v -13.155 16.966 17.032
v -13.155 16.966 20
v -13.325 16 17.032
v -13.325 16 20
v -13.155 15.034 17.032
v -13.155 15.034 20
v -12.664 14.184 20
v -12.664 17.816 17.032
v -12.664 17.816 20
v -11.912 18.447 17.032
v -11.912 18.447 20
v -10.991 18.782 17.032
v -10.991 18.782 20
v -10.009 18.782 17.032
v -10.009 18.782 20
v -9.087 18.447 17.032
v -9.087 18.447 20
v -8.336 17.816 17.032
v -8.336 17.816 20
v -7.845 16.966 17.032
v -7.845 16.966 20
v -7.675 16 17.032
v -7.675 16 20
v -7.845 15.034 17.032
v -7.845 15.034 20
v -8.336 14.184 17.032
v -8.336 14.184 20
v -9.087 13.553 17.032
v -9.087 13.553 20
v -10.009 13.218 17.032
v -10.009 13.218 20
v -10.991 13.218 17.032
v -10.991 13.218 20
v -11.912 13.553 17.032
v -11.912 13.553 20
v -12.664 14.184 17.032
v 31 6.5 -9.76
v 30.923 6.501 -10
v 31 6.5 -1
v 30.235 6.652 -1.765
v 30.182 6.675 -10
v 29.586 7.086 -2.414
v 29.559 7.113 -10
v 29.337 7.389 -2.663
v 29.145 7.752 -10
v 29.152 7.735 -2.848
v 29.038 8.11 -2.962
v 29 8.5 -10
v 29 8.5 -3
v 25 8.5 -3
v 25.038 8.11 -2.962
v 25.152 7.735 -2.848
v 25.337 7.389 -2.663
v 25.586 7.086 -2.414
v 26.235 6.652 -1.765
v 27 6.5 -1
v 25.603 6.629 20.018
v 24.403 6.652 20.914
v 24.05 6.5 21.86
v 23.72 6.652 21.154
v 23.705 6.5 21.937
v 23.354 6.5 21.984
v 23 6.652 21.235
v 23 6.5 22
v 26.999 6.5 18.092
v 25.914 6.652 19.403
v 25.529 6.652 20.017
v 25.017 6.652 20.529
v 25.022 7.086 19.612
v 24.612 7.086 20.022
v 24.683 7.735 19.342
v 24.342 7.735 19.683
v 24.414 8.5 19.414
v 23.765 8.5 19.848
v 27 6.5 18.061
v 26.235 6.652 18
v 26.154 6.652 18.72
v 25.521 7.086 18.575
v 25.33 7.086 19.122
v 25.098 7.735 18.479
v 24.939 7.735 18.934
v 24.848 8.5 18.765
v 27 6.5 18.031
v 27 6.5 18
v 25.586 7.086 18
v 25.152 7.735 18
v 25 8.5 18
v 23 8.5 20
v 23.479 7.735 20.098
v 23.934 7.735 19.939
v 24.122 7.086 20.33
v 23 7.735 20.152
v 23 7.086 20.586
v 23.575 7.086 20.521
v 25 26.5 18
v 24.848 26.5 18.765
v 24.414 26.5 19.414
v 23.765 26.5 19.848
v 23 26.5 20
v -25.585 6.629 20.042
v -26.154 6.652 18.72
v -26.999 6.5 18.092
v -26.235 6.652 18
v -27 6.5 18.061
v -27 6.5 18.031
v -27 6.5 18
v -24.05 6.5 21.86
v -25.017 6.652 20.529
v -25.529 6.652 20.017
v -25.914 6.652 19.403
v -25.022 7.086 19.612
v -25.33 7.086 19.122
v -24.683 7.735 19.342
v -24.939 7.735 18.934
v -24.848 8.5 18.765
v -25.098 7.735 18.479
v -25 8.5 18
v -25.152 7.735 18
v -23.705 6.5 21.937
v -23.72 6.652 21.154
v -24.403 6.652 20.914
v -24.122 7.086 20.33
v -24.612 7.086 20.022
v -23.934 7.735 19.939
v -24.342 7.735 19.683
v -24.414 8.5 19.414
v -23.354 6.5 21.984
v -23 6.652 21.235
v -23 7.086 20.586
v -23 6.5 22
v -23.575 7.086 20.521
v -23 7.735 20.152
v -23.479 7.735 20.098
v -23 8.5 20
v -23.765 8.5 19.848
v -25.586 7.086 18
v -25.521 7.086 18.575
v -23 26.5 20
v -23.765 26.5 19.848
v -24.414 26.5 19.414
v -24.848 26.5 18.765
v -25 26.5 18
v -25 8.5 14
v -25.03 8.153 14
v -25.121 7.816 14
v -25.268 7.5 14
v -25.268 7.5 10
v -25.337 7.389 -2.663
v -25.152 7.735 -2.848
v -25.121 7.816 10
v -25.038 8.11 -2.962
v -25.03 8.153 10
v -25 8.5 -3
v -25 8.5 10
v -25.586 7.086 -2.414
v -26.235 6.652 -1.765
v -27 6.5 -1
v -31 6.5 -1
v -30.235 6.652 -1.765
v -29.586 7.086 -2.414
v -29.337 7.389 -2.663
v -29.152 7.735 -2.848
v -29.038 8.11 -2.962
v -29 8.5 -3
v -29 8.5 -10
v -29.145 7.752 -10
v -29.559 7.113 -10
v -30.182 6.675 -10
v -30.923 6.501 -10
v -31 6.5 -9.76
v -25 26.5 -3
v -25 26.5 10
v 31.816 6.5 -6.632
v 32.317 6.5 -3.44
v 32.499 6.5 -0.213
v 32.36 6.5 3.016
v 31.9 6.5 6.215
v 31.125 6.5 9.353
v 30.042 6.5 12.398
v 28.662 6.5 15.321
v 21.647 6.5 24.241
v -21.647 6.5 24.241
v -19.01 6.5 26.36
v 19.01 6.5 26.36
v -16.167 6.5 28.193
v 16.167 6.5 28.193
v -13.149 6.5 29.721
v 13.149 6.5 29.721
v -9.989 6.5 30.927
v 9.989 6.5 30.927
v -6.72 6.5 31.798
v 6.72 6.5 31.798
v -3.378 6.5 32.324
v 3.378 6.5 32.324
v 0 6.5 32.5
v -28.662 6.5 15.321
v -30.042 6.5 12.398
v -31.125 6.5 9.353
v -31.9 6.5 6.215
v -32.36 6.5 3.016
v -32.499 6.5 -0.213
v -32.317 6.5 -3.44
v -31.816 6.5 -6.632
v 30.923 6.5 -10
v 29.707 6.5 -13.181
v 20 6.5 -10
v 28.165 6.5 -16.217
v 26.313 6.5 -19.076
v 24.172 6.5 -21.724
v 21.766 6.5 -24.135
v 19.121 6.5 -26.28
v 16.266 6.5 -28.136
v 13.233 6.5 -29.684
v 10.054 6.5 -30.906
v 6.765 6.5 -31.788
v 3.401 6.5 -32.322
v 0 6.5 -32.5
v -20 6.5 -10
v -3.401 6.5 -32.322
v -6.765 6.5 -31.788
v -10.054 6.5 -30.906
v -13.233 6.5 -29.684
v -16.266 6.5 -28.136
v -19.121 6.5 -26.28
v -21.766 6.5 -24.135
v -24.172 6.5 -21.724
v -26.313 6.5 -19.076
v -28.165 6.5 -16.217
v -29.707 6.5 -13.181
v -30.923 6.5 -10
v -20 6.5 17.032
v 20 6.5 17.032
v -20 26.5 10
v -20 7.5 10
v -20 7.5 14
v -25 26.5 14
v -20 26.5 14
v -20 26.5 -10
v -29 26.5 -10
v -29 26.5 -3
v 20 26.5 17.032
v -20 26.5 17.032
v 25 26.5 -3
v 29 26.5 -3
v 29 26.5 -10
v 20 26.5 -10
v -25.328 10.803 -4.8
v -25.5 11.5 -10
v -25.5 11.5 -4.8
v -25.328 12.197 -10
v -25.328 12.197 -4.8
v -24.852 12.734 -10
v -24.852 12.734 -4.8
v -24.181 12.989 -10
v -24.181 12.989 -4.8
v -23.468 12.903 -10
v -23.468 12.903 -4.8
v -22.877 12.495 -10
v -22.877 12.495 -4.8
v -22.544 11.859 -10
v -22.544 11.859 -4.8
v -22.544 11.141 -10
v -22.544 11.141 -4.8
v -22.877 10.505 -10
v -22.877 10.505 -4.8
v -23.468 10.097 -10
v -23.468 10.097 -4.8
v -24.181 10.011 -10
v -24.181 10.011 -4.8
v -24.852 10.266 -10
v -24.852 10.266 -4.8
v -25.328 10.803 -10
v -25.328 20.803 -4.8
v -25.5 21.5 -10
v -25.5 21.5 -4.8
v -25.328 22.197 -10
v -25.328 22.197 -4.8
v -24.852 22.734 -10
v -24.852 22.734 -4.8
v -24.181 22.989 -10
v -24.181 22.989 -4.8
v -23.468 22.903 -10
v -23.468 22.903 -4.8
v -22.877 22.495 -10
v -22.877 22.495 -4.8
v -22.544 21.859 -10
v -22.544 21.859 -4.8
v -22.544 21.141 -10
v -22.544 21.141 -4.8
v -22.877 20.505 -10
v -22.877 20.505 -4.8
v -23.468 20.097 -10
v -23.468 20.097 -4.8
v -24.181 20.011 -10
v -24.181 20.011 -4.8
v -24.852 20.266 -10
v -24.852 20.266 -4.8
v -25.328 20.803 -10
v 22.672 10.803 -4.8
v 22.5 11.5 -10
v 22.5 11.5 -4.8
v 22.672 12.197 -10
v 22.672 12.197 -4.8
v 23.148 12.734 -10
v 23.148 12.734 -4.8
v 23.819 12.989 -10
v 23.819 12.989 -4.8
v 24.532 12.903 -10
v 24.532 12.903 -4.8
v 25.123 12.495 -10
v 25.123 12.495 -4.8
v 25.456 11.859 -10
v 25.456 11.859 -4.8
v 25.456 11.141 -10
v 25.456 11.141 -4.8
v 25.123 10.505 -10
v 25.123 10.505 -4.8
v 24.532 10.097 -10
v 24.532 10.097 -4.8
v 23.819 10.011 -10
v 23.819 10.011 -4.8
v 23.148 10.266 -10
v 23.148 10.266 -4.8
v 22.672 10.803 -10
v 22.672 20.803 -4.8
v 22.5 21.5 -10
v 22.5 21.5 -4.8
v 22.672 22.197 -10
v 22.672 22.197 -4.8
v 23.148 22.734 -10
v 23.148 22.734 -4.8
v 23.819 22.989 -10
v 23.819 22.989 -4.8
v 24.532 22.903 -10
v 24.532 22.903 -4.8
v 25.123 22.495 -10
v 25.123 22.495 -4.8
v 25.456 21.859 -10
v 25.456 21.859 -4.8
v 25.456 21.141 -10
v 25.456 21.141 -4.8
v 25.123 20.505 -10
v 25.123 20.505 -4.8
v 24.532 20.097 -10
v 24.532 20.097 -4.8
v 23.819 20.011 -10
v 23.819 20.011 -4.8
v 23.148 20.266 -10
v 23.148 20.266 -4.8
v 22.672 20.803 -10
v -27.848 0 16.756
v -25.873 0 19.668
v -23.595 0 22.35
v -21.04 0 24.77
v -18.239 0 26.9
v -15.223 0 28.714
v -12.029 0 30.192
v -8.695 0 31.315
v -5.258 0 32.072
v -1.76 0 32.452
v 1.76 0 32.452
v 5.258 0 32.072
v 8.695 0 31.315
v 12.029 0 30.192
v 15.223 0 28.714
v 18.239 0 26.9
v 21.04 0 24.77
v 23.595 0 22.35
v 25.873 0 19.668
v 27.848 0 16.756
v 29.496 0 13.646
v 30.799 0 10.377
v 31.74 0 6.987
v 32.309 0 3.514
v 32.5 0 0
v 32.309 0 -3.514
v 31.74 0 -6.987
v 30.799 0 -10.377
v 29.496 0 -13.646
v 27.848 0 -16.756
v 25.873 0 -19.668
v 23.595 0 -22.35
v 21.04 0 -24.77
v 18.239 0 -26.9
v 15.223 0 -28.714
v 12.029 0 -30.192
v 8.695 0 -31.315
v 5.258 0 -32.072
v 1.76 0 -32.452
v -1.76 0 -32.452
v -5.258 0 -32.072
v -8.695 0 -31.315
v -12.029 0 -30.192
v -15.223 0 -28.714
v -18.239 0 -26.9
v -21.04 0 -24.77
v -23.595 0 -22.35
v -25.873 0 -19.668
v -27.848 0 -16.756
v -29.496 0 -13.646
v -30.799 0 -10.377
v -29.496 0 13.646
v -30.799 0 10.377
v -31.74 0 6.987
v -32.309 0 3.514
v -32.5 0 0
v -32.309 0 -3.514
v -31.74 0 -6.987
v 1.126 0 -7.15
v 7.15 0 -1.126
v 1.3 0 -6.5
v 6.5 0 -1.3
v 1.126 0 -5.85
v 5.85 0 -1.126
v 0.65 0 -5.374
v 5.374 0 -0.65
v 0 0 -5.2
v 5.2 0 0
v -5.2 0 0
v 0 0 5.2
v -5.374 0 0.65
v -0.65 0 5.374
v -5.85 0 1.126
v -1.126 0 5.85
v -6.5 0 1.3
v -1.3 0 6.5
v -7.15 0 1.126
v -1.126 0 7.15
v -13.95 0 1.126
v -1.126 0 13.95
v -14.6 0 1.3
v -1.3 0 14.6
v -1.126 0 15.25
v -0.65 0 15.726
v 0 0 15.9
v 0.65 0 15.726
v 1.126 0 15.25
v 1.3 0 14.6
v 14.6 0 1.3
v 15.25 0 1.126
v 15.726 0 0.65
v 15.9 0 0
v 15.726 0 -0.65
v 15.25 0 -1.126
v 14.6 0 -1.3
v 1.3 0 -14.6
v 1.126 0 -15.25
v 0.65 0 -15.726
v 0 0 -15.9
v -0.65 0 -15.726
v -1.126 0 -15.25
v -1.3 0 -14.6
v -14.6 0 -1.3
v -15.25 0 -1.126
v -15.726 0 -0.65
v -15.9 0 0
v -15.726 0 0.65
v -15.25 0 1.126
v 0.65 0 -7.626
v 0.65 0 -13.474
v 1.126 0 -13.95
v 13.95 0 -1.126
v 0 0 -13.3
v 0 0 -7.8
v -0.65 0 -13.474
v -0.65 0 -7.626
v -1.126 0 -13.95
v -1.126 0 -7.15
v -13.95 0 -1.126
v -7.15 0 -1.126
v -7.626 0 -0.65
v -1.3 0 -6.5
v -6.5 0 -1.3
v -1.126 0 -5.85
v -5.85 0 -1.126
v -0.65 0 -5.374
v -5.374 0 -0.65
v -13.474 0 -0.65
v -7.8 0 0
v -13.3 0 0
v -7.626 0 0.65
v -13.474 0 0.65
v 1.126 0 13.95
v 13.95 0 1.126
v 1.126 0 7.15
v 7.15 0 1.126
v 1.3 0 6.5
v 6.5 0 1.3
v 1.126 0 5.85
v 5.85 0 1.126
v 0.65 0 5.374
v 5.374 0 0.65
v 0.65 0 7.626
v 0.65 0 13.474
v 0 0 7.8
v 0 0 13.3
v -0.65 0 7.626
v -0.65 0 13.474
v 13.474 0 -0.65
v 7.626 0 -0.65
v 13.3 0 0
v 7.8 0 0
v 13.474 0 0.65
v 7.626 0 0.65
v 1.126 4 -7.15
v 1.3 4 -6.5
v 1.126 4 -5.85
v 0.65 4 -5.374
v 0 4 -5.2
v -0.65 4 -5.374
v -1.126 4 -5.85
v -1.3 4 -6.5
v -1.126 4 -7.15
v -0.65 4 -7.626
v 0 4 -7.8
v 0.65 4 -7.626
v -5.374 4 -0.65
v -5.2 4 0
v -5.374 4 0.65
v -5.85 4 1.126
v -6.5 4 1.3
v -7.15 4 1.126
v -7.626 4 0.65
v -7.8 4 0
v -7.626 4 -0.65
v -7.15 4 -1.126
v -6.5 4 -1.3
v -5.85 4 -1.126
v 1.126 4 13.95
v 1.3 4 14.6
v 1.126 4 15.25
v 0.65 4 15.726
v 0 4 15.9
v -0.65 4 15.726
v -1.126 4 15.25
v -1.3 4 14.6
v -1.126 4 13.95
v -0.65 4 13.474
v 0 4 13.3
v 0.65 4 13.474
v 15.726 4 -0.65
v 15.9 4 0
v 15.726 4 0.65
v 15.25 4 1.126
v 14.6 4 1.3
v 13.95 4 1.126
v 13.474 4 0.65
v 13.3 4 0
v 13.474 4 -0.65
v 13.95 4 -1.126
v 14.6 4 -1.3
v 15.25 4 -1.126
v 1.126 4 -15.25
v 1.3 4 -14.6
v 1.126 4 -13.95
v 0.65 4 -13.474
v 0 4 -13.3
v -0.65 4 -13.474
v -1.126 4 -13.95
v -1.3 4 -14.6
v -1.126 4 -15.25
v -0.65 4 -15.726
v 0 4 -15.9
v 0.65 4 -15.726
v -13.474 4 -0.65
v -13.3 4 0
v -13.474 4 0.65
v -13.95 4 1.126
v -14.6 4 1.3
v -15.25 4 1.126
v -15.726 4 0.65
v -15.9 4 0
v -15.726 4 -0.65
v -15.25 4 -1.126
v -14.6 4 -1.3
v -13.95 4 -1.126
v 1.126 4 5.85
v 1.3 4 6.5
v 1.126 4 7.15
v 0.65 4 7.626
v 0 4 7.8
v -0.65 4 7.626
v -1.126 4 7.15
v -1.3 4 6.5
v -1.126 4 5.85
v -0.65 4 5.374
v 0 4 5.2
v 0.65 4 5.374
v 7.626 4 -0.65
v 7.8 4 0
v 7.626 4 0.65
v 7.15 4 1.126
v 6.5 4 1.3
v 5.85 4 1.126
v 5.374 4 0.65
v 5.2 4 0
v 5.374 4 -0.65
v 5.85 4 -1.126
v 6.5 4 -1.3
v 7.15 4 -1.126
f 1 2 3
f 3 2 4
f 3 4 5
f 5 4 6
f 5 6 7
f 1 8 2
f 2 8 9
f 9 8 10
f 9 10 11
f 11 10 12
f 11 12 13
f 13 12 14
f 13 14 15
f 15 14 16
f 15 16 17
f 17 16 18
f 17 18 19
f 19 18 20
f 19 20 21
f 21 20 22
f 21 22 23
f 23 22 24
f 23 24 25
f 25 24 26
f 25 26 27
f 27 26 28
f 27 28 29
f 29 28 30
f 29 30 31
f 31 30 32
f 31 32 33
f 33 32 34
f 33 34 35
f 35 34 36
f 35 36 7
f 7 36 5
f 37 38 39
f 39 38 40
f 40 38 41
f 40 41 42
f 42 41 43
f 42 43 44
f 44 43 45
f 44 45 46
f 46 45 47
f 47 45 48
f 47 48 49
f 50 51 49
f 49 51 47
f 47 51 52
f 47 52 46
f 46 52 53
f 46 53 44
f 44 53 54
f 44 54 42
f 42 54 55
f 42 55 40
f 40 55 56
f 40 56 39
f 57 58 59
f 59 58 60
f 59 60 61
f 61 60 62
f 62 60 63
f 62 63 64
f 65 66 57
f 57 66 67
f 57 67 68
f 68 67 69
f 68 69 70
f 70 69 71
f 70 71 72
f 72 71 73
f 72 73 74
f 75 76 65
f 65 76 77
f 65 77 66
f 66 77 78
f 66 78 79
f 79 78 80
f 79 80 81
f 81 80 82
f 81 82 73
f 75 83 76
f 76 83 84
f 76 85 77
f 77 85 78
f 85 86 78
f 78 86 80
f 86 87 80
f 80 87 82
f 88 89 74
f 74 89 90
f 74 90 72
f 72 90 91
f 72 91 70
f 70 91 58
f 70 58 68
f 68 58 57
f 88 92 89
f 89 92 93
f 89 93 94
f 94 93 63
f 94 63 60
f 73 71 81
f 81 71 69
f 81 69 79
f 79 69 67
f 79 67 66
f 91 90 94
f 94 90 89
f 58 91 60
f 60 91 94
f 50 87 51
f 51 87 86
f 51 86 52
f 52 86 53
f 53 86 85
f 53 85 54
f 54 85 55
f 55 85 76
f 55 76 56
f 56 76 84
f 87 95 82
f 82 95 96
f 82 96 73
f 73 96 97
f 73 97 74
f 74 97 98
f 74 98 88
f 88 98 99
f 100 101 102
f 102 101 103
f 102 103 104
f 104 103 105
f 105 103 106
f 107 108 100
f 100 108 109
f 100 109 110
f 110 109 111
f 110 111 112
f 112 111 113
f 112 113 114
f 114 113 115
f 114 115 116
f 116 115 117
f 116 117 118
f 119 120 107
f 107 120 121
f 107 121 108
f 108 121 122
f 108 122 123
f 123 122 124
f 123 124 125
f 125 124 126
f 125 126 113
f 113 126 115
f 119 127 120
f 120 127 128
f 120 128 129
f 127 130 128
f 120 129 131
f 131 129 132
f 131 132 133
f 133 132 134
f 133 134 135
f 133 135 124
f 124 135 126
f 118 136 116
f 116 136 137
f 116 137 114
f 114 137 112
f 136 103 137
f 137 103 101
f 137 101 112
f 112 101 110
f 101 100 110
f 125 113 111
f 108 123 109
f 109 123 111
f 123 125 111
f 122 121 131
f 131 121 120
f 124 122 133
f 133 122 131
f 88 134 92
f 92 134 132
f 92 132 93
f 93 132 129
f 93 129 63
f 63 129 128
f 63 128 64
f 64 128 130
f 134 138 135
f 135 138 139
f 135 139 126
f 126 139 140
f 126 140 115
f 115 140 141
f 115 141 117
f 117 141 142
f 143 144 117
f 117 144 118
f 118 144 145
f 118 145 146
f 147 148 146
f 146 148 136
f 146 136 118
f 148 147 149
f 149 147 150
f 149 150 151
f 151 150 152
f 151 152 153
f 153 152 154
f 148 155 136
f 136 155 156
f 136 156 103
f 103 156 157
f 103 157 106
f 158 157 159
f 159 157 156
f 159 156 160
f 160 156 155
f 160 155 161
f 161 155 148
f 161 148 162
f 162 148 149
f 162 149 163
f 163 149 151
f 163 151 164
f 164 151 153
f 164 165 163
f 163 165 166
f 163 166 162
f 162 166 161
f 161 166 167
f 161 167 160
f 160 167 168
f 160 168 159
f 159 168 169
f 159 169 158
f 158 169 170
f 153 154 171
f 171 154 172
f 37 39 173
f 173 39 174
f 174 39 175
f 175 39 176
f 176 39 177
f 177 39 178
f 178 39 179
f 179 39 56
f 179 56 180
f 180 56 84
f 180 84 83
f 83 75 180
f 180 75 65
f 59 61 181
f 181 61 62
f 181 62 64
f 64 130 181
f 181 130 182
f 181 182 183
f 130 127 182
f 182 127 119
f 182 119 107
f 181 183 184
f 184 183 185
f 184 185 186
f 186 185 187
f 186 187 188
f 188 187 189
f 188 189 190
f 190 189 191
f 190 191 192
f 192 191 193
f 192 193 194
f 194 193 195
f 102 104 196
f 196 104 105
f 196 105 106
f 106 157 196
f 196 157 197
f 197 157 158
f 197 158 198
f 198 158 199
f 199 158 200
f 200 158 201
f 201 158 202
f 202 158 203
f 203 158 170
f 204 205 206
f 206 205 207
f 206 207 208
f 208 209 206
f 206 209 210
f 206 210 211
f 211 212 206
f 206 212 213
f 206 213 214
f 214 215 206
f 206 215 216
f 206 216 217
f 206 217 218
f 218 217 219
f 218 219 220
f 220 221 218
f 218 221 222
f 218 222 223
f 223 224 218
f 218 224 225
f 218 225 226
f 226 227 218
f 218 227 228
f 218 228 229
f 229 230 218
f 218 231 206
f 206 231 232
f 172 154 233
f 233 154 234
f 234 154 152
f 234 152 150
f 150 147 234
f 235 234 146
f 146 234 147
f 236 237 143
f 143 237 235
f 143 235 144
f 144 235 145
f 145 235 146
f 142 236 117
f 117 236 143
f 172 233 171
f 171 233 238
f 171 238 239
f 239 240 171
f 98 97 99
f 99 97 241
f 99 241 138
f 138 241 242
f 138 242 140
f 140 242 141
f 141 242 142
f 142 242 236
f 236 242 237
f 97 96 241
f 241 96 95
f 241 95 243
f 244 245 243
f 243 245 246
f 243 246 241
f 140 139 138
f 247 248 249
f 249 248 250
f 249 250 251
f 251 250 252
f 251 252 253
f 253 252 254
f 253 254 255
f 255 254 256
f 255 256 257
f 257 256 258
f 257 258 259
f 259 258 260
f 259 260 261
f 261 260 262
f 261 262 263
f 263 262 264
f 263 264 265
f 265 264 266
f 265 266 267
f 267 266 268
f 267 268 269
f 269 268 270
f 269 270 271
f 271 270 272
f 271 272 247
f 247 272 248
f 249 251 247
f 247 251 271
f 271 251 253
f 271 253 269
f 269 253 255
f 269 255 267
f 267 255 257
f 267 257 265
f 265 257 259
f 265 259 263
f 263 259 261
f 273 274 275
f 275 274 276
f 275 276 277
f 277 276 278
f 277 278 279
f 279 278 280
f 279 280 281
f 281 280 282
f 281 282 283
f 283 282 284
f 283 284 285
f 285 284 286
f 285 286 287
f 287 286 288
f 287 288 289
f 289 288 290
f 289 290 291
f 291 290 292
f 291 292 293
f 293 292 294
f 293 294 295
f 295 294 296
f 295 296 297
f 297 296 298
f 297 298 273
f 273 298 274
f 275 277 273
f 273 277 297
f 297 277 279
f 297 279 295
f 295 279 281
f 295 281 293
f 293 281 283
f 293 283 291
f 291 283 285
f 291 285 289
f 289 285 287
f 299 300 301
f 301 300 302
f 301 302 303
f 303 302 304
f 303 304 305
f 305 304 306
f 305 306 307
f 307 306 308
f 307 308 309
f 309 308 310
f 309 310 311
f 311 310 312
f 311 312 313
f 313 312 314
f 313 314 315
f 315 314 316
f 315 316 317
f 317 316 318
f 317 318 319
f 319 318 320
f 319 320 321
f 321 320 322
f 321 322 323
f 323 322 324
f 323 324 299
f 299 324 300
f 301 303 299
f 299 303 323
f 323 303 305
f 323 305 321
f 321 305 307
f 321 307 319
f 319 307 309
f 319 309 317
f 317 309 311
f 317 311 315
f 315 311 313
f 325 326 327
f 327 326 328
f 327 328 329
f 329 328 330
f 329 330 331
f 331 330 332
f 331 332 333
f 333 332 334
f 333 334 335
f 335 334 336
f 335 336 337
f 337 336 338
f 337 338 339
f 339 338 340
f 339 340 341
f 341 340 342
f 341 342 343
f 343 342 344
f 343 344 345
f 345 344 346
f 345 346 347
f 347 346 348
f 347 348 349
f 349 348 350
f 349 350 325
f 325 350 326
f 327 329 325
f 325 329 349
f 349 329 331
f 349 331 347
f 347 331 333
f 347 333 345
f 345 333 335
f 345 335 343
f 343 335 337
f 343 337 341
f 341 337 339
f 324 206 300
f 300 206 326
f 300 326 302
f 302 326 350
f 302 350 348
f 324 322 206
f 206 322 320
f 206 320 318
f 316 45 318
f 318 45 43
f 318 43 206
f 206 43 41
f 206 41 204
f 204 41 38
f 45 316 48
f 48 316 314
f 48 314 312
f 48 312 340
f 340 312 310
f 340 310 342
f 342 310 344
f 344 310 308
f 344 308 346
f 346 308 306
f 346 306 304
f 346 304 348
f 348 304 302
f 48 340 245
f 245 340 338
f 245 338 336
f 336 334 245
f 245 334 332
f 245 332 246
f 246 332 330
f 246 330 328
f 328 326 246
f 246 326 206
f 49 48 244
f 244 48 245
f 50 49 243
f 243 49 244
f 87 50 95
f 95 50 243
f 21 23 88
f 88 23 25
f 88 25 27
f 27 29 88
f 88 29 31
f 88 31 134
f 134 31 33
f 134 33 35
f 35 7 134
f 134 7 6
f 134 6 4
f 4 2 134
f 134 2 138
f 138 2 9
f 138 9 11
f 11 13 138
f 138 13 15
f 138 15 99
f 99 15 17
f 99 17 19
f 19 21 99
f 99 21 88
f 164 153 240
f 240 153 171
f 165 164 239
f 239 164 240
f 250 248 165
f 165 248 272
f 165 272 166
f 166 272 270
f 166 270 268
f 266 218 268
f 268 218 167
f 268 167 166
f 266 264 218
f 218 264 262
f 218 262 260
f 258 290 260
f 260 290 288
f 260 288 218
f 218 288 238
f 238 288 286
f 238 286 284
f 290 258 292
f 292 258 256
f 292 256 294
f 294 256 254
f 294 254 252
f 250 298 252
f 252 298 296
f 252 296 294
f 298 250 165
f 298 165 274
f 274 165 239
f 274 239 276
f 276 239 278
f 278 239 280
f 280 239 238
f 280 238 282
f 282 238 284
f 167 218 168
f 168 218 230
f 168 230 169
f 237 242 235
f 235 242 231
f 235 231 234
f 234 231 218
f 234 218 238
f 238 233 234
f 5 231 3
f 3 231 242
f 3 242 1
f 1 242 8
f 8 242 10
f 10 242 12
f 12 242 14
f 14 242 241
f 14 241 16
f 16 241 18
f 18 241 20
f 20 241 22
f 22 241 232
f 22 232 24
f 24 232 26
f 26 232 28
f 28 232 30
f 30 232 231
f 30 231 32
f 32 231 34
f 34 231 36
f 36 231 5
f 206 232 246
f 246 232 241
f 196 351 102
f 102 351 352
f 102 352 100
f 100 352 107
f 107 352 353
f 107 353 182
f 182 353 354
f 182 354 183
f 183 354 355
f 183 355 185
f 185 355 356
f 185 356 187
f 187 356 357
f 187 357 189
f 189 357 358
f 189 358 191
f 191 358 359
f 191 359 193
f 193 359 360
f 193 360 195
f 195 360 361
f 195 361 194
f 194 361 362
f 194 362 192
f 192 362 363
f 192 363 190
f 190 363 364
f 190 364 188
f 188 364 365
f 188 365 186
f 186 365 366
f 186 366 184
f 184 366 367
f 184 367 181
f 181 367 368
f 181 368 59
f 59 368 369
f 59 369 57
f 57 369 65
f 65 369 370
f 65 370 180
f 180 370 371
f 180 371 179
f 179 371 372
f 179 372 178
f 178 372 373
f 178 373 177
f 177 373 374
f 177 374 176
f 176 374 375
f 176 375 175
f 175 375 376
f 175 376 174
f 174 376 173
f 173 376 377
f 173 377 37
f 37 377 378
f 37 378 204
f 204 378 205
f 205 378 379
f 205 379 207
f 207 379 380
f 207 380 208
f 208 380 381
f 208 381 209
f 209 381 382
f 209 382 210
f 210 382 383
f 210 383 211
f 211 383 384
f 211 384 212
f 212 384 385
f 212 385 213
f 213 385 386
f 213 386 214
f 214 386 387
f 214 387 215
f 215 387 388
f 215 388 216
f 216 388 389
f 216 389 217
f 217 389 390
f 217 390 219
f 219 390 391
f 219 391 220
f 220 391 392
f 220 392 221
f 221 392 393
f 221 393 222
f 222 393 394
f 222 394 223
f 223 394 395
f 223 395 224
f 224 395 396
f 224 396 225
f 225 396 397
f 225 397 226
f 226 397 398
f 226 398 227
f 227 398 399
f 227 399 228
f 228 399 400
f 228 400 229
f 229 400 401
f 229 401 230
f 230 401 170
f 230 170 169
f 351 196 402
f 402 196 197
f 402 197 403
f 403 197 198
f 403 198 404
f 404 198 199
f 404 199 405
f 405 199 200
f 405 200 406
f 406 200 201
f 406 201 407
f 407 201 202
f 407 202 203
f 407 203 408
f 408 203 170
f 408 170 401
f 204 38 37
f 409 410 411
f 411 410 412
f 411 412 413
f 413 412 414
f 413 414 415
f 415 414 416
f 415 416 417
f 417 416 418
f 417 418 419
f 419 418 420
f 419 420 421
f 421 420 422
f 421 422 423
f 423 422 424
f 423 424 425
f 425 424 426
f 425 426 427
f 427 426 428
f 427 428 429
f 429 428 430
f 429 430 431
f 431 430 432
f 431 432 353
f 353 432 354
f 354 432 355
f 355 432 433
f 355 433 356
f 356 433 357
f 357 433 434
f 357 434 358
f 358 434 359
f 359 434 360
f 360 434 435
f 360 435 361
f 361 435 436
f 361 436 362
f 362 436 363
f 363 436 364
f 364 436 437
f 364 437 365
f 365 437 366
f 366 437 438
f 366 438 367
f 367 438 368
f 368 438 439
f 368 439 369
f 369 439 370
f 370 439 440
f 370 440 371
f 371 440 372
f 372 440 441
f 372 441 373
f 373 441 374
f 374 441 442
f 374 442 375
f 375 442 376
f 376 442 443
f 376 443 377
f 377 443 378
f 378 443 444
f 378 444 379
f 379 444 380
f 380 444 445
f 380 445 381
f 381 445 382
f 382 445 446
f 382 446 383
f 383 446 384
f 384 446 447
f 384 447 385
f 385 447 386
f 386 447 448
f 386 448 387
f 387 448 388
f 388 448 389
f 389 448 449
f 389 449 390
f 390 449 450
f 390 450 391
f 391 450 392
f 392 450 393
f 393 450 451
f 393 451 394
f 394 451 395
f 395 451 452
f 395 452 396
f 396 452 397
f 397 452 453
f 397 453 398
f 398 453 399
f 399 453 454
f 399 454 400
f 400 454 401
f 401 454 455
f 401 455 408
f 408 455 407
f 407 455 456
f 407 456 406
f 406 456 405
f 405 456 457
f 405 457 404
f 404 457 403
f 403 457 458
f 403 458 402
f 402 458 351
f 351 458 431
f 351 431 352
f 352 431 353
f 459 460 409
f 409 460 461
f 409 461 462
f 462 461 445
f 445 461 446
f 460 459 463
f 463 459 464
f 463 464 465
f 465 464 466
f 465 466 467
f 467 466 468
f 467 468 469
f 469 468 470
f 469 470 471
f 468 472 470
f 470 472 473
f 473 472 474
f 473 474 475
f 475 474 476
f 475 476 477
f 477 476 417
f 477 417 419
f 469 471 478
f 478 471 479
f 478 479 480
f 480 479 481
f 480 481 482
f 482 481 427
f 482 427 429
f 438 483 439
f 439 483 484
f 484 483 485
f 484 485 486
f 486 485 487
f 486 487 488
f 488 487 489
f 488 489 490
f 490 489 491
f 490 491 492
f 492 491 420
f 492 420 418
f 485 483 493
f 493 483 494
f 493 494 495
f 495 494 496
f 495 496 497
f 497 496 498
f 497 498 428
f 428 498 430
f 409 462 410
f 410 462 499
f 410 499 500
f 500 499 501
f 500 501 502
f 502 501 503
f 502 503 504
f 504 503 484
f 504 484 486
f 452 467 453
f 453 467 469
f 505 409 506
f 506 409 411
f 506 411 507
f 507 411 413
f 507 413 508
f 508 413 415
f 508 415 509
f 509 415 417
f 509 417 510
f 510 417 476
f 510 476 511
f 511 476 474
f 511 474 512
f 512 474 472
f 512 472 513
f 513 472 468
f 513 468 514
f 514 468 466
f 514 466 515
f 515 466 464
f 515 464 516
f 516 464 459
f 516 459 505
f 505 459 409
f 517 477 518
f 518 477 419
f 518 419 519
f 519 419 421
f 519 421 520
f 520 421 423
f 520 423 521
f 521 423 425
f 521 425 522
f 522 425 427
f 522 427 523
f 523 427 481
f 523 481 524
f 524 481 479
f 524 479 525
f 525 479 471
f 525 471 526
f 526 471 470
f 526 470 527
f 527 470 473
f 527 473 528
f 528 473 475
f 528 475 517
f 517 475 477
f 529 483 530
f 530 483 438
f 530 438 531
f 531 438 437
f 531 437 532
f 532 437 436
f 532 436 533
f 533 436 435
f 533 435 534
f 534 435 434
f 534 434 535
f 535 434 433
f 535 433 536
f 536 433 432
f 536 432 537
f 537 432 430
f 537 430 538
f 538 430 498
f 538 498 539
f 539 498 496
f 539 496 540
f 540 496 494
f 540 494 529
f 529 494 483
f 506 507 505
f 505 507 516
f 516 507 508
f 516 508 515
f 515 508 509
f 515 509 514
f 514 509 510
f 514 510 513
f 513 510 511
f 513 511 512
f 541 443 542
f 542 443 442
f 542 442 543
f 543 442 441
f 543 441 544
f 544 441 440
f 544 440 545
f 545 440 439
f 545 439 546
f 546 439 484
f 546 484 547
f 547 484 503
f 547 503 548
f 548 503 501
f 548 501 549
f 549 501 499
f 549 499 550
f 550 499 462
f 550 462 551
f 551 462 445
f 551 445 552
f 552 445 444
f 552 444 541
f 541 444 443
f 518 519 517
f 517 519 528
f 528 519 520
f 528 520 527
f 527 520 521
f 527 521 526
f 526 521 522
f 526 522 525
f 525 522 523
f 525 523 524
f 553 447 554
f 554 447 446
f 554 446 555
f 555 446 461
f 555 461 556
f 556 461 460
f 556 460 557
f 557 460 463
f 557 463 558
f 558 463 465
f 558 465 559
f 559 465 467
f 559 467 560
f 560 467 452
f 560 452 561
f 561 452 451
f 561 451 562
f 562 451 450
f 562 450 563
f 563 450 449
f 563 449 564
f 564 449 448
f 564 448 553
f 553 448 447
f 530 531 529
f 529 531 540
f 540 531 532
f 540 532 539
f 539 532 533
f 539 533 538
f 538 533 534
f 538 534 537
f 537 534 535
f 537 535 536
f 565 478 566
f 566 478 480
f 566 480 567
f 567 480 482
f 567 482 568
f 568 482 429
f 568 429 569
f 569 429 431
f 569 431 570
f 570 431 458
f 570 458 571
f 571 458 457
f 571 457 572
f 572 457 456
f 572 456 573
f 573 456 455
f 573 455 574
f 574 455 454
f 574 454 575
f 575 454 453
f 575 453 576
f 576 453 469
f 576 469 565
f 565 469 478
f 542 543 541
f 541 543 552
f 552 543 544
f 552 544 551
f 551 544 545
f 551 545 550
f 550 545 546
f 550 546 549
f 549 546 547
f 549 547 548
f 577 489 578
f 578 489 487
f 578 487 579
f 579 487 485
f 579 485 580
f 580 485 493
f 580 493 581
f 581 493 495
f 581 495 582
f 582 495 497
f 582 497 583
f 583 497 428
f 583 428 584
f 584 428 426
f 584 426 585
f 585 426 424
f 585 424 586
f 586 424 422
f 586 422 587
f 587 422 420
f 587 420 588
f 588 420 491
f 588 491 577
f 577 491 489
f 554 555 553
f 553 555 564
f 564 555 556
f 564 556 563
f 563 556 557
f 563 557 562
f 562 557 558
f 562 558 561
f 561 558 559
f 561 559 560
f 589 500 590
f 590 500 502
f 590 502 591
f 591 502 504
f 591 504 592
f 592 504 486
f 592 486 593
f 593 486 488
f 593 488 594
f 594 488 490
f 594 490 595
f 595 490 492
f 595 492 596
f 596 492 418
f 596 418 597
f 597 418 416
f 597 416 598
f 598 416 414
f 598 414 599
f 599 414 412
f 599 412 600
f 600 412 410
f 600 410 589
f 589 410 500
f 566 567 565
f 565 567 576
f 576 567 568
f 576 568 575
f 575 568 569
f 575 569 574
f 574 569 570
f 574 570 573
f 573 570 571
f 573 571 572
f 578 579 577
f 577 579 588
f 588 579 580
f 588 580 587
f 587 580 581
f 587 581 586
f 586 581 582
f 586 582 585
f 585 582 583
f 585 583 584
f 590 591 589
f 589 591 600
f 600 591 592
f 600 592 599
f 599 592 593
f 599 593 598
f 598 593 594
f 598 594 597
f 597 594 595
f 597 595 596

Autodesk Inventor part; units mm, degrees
ref_plane "YZ Plane" through (0, 0, 0) normal (1, 0, 0) x (0, 1, 0)
ref_plane "XZ Plane" through (0, 0, 0) normal (0, 1, 0) x (-1, 0, 0)
ref_plane "XY Plane" through (0, 0, 0) normal (0, 0, 1) x (1, 0, 0)
sketch "Sketch1" plane through (0, 0, 0) normal (0, 1, 0) x (-1, 0, 0)
  line L0 (17.3205, -10) -> (21.6506, -12.5)
  line L1 (0, 0) -> (25, 0) construction
  line L2 (17.3205, 10) -> (21.6506, 12.5)
  line L3 (-17.3205, -10) -> (-21.6506, -12.5)
  line L4 (-17.3205, 10) -> (-21.6506, 12.5)
  arc A0 (17.3205, 10) -> (-17.3205, 10) centre (0, 0) ccw
  arc A1 (-17.3205, -10) -> (17.3205, -10) centre (0, 0) ccw
  arc A2 (21.6506, 12.5) -> (-21.6506, 12.5) centre (0, 0) ccw
  arc A3 (-21.6506, -12.5) -> (21.6506, -12.5) centre (0, 0) ccw
  circle A4 centre (0, 0) radius 25
  point P0 (0, -20)
  point P1 (0, -20)
  dimension "d13" = 50
  dimension "d4" = 30
  dimension "d10" = 0
  dimension "d11" = 20
sketch "Sketch2" plane through (0, 0, 0) normal (0, 1, 0) x (-1, 0, 0)
  circle A0 centre (0, 0) radius 32.5
  dimension "d14" = 65
extrude "Extrusion1" add sketch "Sketch2" along normal blind 6.5
sketch "Sketch11" plane through (0, 6.5, 0) normal (0, 1, 0) x (1, 0, 0)
  line L0 (25, 10) -> (20, 10)
  line L1 (20, 10) -> (20, -20)
  line L2 (20, -20) -> (25, -20)
  line L3 (25, -20) -> (25, 10)
  line L4 (25, -20) -> (-25, -20)
  line L5 (-25, -20) -> (-25, -17.0323)
  line L6 (-25, -17.0323) -> (25, -17.0323)
  line L7 (25, -17.0323) -> (25, -20)
  line L8 (-25, -20) -> (-20, -20)
  line L9 (-20, -20) -> (-20, 10)
  line L10 (-20, 10) -> (-25, 10)
  line L11 (-25, 10) -> (-25, -20)
  circle A0 centre (0, 0) radius 32.5 projected
  line L12 (20, 10) -> (29, 10)
  line L13 (29, 10) -> (29, 3)
  line L14 (29, 3) -> (20, 3)
  line L15 (20, 3) -> (20, 10)
  line L16 (0, 45) -> (0, 40)
  line L17 (-25, 10) -> (-20, 10)
  line L18 (-20, 10) -> (-20, -20)
  line L19 (-25, -20) -> (-25, 10)
  line L20 (-20, 10) -> (-29, 10)
  line L21 (-29, 10) -> (-29, 3)
  line L22 (-29, 3) -> (-20, 3)
  line L23 (-20, 3) -> (-20, 10)
  point P0 (0, -20)
  point P1 (20, -17.0323)
  point P2 (-20, -17.0323)
  point P3 (-25, 3)
  point P4 (25, 3)
  dimension "d79" = 30
  dimension "d80" = 50
  dimension "d81" = 5
  dimension "d82" = 5
  dimension "d83" = 30
  dimension "d85" = 25
  dimension "d86" = 25
  dimension "d87" = 20
  dimension "d90" = 9
  dimension "d91" = 7
  dimension "d92" = 9
  dimension "d118" = 40
extrude "Extrusion9" add sketch "Sketch11" along normal blind 20 contours L3 L14 L1 L0 | L12 L13 L14 L3 | L3 L6 L1 L14 | L3 L2 L1 L6 | L1 L4 L9 L6 | L9 L4 L5 L6 | L6 L11 L22 L9 | L22 L11 L10 L9 | L22 L21 L20 L11
sketch "Sketch12" plane through (-20, 6.5, -10) normal (0, 0, -1) x (-1, 0, 0)
  circle A0 centre (4, 5) radius 1.5
  line L0 (-14, -36) -> (-14, -31)
  line L1 (-14, -31) -> (-21, -31)
  circle A1 centre (4, 15) radius 1.5
  circle A2 centre (-44, 5) radius 1.5
  circle A3 centre (-44, 15) radius 1.5
  line L2 (9, 0) -> (9, 20) projected
  line L3 (12.5, 0) -> (-52.5, 0) projected
  point P0 (-20, -6.5)
  dimension "d93" = 3
  dimension "d96" = 10
  dimension "d99" = 48
  dimension "d102" = 5
  dimension "d103" = 5
extrude "Extrusion10" cut sketch "Sketch12" against normal blind 5.2
sketch "Sketch13" plane through (-25, 6.5, -3) normal (-1, 0, 0) x (0, 0, 1)
  line L0 (13, 1) -> (17, 1)
  line L1 (17, 1) -> (17, 51)
  line L2 (17, 51) -> (13, 51)
  line L3 (13, 51) -> (13, 1)
  line L4 (35.5, 0) -> (-29.5, 0) projected
  line L5 (23, 0) -> (23, 20) projected
  point P0 (3, -6.5)
  dimension "d108" = 50
  dimension "d109" = 1
  dimension "d110" = 6
  dimension "d111" = 4
extrude "Extrusion11" cut sketch "Sketch13" against normal blind 5.2
fillet "Fillet3" radius 2 9 edges at (-25, 16.5, 20) (25, 16.5, 20) (0, 6.5, 20) (25, 6.5, 8.5) (-25, 6.5, 8.5) (-29, 6.5, -6.5) (-27, 6.5, -3) (29, 6.5, -6.5) (27, 6.5, -3)
sketch "Sketch14" plane through (-23, 26.5, 20) normal (0, 0, 1) x (1, 0, 0)
  circle A0 centre (12.5, -10.5) radius 2.825
  line L0 (3, -20) -> (3, 0) projected
  line L1 (46, -18) -> (0, -18) projected
  point P0 (23, -26.5)
  dimension "d113" = 5.65
  dimension "d114" = 9.5
  dimension "d115" = 7.5
extrude "Extrusion12" cut sketch "Sketch14" against normal blind 10
sketch "Sketch15" plane through (0, 0, 0) normal (0, -1, 0) x (1, 0, 0)
  circle A0 centre (6.5, 0) radius 1.3
  circle A1 centre (14.6, 0) radius 1.3
  circle A2 centre (0, 6.5) radius 1.3
  circle A3 centre (0, 14.6) radius 1.3
  circle A4 centre (-6.5, 0) radius 1.3
  circle A5 centre (-14.6, 0) radius 1.3
  circle A6 centre (0, -6.5) radius 1.3
  circle A7 centre (0, -14.6) radius 1.3
  point P0 (0, 0)
  dimension "d119" = 2.6
  dimension "d120" = 2.6
  dimension "d121" = 6.5
  dimension "d122" = 8.1
  dimension "d125" = 360
extrude "Extrusion13" cut sketch "Sketch15" against normal blind 4
properties part number "rotacniZaklad"
